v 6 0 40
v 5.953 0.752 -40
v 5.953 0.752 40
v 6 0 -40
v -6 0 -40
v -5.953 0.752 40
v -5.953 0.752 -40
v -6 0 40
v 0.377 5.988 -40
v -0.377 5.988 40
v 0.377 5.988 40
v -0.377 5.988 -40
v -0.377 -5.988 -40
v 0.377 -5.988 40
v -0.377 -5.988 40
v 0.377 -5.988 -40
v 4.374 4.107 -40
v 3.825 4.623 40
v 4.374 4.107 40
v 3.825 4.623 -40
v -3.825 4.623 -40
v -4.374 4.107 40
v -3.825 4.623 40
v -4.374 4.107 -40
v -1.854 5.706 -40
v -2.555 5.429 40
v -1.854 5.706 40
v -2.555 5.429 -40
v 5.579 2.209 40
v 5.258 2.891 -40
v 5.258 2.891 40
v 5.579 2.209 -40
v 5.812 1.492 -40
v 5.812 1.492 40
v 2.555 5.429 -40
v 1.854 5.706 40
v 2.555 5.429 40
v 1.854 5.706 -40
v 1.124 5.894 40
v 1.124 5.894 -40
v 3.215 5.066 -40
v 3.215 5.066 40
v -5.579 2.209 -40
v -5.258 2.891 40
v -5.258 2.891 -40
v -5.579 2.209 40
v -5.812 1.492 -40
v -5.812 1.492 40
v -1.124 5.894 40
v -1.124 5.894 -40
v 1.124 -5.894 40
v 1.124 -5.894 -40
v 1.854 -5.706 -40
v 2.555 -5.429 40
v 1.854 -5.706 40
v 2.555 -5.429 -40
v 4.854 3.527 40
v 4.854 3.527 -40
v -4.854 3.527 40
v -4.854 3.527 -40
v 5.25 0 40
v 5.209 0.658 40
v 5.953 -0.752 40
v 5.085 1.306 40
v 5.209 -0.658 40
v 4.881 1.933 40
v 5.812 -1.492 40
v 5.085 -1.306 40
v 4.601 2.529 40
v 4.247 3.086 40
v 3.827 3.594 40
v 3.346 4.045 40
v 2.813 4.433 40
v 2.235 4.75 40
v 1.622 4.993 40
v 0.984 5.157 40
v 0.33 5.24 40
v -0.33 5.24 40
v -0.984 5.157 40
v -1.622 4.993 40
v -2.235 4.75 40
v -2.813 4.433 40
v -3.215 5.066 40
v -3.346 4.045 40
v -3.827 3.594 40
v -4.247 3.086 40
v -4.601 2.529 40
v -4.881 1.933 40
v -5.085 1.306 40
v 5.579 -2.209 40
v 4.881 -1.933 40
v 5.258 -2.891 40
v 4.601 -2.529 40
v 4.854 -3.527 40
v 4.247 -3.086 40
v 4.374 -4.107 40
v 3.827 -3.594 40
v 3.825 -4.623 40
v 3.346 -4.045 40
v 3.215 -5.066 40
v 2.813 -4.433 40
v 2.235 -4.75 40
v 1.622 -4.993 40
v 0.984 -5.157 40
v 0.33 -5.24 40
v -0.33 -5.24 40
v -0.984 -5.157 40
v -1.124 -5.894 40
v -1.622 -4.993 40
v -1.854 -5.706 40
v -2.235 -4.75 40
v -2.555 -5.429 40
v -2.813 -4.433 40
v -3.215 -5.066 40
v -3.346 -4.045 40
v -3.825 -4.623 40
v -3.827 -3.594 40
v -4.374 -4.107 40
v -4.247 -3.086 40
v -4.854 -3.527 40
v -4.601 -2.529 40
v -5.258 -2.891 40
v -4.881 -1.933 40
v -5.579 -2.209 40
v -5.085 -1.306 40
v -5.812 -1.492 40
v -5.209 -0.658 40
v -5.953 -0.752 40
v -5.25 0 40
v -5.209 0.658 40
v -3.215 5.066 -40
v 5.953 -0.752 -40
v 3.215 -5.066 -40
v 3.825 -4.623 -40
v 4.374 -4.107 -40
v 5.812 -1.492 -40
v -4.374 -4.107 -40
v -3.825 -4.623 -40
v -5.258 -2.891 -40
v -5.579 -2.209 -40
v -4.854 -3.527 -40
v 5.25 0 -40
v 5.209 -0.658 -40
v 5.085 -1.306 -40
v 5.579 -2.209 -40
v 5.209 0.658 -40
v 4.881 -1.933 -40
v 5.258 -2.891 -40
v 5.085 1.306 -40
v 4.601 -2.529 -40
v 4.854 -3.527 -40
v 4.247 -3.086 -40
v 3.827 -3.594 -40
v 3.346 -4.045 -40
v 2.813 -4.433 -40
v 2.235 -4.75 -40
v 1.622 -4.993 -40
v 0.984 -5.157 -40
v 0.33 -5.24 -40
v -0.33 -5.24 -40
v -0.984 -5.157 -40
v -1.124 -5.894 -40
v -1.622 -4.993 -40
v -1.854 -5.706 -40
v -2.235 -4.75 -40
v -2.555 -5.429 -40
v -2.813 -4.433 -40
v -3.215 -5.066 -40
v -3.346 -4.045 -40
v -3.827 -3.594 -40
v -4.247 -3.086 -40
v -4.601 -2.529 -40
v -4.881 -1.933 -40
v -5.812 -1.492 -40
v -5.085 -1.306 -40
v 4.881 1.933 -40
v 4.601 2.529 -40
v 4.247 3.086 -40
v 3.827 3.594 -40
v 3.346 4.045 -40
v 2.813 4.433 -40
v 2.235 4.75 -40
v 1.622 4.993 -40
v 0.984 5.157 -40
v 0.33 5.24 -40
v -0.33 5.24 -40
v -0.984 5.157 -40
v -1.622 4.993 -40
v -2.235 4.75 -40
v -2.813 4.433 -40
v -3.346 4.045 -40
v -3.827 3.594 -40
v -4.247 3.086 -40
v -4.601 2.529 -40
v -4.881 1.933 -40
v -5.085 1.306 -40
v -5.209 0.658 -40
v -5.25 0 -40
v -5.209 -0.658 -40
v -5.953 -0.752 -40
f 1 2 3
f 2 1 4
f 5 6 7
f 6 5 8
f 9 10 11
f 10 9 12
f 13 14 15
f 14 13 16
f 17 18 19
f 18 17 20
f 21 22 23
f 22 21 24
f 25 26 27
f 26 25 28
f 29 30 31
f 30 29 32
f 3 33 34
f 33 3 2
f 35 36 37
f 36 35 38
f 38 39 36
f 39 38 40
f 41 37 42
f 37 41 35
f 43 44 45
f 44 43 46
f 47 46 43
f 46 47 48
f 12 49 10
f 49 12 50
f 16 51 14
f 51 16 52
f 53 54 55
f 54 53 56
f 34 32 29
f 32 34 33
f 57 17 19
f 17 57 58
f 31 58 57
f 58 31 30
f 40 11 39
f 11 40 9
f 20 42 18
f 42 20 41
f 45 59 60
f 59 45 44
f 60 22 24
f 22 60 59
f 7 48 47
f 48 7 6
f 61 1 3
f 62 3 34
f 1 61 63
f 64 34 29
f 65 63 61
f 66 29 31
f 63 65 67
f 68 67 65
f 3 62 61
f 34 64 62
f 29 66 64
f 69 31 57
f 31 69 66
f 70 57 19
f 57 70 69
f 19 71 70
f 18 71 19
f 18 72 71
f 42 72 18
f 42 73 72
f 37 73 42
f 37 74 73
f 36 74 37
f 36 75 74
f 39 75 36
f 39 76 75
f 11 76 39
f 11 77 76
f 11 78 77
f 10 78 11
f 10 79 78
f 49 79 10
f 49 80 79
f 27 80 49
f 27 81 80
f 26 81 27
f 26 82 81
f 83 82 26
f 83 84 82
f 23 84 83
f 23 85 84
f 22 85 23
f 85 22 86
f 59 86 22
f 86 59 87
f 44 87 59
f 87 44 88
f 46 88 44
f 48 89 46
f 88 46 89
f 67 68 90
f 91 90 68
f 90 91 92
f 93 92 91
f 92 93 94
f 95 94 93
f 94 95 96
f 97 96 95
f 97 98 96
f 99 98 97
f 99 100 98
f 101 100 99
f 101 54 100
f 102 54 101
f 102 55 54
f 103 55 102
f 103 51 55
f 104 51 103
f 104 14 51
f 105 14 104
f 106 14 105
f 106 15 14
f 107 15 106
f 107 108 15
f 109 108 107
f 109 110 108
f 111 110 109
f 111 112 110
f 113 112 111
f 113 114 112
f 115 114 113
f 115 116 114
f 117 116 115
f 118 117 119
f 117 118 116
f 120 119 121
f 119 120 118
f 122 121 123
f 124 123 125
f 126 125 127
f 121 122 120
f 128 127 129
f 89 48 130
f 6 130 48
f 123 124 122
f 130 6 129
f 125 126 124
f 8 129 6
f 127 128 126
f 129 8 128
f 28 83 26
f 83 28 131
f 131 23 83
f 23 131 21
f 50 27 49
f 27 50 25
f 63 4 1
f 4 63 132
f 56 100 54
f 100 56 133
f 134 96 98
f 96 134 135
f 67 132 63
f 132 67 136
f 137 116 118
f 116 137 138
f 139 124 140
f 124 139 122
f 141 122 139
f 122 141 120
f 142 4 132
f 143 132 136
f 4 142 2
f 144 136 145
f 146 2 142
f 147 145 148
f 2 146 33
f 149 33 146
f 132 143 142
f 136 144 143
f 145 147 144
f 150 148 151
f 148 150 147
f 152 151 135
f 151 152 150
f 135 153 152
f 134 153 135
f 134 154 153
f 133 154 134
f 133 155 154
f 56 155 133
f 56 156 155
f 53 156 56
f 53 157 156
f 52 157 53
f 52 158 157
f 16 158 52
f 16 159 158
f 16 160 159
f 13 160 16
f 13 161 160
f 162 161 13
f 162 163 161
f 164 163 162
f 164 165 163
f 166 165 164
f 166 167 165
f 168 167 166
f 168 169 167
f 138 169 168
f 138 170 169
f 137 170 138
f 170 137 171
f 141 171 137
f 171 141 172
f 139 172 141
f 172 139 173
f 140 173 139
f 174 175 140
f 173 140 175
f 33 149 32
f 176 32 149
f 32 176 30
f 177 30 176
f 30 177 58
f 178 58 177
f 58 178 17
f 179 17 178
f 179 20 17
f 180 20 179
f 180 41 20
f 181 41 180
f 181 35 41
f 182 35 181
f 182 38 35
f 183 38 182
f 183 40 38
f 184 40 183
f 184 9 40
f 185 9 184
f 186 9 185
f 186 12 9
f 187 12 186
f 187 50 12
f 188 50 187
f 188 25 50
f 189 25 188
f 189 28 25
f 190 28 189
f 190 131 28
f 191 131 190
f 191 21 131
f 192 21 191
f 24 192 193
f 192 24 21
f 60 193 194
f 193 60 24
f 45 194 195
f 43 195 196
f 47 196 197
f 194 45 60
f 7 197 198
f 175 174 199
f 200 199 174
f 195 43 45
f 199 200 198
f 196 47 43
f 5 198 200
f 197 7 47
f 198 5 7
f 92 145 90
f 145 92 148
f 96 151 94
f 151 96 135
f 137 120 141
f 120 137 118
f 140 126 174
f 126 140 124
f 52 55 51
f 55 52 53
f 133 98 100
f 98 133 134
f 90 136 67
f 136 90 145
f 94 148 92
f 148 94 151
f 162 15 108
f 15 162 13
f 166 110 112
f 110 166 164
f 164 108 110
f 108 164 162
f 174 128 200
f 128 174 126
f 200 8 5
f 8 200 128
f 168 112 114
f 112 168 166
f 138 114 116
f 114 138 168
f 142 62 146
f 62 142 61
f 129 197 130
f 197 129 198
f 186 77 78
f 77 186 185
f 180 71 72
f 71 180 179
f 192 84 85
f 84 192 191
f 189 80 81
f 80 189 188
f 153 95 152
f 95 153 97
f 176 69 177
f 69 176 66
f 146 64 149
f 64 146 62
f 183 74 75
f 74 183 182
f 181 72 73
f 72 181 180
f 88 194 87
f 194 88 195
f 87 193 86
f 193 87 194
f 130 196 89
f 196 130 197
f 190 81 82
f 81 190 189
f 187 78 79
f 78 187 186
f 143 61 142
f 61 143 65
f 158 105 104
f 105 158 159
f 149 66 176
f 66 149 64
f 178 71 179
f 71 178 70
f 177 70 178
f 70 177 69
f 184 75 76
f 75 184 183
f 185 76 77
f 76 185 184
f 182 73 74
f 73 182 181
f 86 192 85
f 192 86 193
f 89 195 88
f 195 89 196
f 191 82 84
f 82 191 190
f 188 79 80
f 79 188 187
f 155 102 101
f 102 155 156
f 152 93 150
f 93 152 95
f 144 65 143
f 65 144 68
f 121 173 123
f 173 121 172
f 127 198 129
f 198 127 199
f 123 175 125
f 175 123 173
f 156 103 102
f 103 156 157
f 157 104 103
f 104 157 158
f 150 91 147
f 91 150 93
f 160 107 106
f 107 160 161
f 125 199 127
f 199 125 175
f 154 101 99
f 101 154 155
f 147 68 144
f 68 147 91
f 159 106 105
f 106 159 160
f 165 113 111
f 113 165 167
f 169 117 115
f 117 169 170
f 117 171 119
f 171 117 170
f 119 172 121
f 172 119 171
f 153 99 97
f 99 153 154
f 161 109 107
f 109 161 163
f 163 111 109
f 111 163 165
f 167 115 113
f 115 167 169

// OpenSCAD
$fn = 50;


difference() {
	union() {
		translate(v = [0, 0, -40.0000000000]) {
			cylinder(h = 80, r = 6.0000000000);
		}
	}
	union() {
		translate(v = [0, 0, -100.0000000000]) {
			cylinder(h = 200, r = 5.2500000000);
		}
	}
}
